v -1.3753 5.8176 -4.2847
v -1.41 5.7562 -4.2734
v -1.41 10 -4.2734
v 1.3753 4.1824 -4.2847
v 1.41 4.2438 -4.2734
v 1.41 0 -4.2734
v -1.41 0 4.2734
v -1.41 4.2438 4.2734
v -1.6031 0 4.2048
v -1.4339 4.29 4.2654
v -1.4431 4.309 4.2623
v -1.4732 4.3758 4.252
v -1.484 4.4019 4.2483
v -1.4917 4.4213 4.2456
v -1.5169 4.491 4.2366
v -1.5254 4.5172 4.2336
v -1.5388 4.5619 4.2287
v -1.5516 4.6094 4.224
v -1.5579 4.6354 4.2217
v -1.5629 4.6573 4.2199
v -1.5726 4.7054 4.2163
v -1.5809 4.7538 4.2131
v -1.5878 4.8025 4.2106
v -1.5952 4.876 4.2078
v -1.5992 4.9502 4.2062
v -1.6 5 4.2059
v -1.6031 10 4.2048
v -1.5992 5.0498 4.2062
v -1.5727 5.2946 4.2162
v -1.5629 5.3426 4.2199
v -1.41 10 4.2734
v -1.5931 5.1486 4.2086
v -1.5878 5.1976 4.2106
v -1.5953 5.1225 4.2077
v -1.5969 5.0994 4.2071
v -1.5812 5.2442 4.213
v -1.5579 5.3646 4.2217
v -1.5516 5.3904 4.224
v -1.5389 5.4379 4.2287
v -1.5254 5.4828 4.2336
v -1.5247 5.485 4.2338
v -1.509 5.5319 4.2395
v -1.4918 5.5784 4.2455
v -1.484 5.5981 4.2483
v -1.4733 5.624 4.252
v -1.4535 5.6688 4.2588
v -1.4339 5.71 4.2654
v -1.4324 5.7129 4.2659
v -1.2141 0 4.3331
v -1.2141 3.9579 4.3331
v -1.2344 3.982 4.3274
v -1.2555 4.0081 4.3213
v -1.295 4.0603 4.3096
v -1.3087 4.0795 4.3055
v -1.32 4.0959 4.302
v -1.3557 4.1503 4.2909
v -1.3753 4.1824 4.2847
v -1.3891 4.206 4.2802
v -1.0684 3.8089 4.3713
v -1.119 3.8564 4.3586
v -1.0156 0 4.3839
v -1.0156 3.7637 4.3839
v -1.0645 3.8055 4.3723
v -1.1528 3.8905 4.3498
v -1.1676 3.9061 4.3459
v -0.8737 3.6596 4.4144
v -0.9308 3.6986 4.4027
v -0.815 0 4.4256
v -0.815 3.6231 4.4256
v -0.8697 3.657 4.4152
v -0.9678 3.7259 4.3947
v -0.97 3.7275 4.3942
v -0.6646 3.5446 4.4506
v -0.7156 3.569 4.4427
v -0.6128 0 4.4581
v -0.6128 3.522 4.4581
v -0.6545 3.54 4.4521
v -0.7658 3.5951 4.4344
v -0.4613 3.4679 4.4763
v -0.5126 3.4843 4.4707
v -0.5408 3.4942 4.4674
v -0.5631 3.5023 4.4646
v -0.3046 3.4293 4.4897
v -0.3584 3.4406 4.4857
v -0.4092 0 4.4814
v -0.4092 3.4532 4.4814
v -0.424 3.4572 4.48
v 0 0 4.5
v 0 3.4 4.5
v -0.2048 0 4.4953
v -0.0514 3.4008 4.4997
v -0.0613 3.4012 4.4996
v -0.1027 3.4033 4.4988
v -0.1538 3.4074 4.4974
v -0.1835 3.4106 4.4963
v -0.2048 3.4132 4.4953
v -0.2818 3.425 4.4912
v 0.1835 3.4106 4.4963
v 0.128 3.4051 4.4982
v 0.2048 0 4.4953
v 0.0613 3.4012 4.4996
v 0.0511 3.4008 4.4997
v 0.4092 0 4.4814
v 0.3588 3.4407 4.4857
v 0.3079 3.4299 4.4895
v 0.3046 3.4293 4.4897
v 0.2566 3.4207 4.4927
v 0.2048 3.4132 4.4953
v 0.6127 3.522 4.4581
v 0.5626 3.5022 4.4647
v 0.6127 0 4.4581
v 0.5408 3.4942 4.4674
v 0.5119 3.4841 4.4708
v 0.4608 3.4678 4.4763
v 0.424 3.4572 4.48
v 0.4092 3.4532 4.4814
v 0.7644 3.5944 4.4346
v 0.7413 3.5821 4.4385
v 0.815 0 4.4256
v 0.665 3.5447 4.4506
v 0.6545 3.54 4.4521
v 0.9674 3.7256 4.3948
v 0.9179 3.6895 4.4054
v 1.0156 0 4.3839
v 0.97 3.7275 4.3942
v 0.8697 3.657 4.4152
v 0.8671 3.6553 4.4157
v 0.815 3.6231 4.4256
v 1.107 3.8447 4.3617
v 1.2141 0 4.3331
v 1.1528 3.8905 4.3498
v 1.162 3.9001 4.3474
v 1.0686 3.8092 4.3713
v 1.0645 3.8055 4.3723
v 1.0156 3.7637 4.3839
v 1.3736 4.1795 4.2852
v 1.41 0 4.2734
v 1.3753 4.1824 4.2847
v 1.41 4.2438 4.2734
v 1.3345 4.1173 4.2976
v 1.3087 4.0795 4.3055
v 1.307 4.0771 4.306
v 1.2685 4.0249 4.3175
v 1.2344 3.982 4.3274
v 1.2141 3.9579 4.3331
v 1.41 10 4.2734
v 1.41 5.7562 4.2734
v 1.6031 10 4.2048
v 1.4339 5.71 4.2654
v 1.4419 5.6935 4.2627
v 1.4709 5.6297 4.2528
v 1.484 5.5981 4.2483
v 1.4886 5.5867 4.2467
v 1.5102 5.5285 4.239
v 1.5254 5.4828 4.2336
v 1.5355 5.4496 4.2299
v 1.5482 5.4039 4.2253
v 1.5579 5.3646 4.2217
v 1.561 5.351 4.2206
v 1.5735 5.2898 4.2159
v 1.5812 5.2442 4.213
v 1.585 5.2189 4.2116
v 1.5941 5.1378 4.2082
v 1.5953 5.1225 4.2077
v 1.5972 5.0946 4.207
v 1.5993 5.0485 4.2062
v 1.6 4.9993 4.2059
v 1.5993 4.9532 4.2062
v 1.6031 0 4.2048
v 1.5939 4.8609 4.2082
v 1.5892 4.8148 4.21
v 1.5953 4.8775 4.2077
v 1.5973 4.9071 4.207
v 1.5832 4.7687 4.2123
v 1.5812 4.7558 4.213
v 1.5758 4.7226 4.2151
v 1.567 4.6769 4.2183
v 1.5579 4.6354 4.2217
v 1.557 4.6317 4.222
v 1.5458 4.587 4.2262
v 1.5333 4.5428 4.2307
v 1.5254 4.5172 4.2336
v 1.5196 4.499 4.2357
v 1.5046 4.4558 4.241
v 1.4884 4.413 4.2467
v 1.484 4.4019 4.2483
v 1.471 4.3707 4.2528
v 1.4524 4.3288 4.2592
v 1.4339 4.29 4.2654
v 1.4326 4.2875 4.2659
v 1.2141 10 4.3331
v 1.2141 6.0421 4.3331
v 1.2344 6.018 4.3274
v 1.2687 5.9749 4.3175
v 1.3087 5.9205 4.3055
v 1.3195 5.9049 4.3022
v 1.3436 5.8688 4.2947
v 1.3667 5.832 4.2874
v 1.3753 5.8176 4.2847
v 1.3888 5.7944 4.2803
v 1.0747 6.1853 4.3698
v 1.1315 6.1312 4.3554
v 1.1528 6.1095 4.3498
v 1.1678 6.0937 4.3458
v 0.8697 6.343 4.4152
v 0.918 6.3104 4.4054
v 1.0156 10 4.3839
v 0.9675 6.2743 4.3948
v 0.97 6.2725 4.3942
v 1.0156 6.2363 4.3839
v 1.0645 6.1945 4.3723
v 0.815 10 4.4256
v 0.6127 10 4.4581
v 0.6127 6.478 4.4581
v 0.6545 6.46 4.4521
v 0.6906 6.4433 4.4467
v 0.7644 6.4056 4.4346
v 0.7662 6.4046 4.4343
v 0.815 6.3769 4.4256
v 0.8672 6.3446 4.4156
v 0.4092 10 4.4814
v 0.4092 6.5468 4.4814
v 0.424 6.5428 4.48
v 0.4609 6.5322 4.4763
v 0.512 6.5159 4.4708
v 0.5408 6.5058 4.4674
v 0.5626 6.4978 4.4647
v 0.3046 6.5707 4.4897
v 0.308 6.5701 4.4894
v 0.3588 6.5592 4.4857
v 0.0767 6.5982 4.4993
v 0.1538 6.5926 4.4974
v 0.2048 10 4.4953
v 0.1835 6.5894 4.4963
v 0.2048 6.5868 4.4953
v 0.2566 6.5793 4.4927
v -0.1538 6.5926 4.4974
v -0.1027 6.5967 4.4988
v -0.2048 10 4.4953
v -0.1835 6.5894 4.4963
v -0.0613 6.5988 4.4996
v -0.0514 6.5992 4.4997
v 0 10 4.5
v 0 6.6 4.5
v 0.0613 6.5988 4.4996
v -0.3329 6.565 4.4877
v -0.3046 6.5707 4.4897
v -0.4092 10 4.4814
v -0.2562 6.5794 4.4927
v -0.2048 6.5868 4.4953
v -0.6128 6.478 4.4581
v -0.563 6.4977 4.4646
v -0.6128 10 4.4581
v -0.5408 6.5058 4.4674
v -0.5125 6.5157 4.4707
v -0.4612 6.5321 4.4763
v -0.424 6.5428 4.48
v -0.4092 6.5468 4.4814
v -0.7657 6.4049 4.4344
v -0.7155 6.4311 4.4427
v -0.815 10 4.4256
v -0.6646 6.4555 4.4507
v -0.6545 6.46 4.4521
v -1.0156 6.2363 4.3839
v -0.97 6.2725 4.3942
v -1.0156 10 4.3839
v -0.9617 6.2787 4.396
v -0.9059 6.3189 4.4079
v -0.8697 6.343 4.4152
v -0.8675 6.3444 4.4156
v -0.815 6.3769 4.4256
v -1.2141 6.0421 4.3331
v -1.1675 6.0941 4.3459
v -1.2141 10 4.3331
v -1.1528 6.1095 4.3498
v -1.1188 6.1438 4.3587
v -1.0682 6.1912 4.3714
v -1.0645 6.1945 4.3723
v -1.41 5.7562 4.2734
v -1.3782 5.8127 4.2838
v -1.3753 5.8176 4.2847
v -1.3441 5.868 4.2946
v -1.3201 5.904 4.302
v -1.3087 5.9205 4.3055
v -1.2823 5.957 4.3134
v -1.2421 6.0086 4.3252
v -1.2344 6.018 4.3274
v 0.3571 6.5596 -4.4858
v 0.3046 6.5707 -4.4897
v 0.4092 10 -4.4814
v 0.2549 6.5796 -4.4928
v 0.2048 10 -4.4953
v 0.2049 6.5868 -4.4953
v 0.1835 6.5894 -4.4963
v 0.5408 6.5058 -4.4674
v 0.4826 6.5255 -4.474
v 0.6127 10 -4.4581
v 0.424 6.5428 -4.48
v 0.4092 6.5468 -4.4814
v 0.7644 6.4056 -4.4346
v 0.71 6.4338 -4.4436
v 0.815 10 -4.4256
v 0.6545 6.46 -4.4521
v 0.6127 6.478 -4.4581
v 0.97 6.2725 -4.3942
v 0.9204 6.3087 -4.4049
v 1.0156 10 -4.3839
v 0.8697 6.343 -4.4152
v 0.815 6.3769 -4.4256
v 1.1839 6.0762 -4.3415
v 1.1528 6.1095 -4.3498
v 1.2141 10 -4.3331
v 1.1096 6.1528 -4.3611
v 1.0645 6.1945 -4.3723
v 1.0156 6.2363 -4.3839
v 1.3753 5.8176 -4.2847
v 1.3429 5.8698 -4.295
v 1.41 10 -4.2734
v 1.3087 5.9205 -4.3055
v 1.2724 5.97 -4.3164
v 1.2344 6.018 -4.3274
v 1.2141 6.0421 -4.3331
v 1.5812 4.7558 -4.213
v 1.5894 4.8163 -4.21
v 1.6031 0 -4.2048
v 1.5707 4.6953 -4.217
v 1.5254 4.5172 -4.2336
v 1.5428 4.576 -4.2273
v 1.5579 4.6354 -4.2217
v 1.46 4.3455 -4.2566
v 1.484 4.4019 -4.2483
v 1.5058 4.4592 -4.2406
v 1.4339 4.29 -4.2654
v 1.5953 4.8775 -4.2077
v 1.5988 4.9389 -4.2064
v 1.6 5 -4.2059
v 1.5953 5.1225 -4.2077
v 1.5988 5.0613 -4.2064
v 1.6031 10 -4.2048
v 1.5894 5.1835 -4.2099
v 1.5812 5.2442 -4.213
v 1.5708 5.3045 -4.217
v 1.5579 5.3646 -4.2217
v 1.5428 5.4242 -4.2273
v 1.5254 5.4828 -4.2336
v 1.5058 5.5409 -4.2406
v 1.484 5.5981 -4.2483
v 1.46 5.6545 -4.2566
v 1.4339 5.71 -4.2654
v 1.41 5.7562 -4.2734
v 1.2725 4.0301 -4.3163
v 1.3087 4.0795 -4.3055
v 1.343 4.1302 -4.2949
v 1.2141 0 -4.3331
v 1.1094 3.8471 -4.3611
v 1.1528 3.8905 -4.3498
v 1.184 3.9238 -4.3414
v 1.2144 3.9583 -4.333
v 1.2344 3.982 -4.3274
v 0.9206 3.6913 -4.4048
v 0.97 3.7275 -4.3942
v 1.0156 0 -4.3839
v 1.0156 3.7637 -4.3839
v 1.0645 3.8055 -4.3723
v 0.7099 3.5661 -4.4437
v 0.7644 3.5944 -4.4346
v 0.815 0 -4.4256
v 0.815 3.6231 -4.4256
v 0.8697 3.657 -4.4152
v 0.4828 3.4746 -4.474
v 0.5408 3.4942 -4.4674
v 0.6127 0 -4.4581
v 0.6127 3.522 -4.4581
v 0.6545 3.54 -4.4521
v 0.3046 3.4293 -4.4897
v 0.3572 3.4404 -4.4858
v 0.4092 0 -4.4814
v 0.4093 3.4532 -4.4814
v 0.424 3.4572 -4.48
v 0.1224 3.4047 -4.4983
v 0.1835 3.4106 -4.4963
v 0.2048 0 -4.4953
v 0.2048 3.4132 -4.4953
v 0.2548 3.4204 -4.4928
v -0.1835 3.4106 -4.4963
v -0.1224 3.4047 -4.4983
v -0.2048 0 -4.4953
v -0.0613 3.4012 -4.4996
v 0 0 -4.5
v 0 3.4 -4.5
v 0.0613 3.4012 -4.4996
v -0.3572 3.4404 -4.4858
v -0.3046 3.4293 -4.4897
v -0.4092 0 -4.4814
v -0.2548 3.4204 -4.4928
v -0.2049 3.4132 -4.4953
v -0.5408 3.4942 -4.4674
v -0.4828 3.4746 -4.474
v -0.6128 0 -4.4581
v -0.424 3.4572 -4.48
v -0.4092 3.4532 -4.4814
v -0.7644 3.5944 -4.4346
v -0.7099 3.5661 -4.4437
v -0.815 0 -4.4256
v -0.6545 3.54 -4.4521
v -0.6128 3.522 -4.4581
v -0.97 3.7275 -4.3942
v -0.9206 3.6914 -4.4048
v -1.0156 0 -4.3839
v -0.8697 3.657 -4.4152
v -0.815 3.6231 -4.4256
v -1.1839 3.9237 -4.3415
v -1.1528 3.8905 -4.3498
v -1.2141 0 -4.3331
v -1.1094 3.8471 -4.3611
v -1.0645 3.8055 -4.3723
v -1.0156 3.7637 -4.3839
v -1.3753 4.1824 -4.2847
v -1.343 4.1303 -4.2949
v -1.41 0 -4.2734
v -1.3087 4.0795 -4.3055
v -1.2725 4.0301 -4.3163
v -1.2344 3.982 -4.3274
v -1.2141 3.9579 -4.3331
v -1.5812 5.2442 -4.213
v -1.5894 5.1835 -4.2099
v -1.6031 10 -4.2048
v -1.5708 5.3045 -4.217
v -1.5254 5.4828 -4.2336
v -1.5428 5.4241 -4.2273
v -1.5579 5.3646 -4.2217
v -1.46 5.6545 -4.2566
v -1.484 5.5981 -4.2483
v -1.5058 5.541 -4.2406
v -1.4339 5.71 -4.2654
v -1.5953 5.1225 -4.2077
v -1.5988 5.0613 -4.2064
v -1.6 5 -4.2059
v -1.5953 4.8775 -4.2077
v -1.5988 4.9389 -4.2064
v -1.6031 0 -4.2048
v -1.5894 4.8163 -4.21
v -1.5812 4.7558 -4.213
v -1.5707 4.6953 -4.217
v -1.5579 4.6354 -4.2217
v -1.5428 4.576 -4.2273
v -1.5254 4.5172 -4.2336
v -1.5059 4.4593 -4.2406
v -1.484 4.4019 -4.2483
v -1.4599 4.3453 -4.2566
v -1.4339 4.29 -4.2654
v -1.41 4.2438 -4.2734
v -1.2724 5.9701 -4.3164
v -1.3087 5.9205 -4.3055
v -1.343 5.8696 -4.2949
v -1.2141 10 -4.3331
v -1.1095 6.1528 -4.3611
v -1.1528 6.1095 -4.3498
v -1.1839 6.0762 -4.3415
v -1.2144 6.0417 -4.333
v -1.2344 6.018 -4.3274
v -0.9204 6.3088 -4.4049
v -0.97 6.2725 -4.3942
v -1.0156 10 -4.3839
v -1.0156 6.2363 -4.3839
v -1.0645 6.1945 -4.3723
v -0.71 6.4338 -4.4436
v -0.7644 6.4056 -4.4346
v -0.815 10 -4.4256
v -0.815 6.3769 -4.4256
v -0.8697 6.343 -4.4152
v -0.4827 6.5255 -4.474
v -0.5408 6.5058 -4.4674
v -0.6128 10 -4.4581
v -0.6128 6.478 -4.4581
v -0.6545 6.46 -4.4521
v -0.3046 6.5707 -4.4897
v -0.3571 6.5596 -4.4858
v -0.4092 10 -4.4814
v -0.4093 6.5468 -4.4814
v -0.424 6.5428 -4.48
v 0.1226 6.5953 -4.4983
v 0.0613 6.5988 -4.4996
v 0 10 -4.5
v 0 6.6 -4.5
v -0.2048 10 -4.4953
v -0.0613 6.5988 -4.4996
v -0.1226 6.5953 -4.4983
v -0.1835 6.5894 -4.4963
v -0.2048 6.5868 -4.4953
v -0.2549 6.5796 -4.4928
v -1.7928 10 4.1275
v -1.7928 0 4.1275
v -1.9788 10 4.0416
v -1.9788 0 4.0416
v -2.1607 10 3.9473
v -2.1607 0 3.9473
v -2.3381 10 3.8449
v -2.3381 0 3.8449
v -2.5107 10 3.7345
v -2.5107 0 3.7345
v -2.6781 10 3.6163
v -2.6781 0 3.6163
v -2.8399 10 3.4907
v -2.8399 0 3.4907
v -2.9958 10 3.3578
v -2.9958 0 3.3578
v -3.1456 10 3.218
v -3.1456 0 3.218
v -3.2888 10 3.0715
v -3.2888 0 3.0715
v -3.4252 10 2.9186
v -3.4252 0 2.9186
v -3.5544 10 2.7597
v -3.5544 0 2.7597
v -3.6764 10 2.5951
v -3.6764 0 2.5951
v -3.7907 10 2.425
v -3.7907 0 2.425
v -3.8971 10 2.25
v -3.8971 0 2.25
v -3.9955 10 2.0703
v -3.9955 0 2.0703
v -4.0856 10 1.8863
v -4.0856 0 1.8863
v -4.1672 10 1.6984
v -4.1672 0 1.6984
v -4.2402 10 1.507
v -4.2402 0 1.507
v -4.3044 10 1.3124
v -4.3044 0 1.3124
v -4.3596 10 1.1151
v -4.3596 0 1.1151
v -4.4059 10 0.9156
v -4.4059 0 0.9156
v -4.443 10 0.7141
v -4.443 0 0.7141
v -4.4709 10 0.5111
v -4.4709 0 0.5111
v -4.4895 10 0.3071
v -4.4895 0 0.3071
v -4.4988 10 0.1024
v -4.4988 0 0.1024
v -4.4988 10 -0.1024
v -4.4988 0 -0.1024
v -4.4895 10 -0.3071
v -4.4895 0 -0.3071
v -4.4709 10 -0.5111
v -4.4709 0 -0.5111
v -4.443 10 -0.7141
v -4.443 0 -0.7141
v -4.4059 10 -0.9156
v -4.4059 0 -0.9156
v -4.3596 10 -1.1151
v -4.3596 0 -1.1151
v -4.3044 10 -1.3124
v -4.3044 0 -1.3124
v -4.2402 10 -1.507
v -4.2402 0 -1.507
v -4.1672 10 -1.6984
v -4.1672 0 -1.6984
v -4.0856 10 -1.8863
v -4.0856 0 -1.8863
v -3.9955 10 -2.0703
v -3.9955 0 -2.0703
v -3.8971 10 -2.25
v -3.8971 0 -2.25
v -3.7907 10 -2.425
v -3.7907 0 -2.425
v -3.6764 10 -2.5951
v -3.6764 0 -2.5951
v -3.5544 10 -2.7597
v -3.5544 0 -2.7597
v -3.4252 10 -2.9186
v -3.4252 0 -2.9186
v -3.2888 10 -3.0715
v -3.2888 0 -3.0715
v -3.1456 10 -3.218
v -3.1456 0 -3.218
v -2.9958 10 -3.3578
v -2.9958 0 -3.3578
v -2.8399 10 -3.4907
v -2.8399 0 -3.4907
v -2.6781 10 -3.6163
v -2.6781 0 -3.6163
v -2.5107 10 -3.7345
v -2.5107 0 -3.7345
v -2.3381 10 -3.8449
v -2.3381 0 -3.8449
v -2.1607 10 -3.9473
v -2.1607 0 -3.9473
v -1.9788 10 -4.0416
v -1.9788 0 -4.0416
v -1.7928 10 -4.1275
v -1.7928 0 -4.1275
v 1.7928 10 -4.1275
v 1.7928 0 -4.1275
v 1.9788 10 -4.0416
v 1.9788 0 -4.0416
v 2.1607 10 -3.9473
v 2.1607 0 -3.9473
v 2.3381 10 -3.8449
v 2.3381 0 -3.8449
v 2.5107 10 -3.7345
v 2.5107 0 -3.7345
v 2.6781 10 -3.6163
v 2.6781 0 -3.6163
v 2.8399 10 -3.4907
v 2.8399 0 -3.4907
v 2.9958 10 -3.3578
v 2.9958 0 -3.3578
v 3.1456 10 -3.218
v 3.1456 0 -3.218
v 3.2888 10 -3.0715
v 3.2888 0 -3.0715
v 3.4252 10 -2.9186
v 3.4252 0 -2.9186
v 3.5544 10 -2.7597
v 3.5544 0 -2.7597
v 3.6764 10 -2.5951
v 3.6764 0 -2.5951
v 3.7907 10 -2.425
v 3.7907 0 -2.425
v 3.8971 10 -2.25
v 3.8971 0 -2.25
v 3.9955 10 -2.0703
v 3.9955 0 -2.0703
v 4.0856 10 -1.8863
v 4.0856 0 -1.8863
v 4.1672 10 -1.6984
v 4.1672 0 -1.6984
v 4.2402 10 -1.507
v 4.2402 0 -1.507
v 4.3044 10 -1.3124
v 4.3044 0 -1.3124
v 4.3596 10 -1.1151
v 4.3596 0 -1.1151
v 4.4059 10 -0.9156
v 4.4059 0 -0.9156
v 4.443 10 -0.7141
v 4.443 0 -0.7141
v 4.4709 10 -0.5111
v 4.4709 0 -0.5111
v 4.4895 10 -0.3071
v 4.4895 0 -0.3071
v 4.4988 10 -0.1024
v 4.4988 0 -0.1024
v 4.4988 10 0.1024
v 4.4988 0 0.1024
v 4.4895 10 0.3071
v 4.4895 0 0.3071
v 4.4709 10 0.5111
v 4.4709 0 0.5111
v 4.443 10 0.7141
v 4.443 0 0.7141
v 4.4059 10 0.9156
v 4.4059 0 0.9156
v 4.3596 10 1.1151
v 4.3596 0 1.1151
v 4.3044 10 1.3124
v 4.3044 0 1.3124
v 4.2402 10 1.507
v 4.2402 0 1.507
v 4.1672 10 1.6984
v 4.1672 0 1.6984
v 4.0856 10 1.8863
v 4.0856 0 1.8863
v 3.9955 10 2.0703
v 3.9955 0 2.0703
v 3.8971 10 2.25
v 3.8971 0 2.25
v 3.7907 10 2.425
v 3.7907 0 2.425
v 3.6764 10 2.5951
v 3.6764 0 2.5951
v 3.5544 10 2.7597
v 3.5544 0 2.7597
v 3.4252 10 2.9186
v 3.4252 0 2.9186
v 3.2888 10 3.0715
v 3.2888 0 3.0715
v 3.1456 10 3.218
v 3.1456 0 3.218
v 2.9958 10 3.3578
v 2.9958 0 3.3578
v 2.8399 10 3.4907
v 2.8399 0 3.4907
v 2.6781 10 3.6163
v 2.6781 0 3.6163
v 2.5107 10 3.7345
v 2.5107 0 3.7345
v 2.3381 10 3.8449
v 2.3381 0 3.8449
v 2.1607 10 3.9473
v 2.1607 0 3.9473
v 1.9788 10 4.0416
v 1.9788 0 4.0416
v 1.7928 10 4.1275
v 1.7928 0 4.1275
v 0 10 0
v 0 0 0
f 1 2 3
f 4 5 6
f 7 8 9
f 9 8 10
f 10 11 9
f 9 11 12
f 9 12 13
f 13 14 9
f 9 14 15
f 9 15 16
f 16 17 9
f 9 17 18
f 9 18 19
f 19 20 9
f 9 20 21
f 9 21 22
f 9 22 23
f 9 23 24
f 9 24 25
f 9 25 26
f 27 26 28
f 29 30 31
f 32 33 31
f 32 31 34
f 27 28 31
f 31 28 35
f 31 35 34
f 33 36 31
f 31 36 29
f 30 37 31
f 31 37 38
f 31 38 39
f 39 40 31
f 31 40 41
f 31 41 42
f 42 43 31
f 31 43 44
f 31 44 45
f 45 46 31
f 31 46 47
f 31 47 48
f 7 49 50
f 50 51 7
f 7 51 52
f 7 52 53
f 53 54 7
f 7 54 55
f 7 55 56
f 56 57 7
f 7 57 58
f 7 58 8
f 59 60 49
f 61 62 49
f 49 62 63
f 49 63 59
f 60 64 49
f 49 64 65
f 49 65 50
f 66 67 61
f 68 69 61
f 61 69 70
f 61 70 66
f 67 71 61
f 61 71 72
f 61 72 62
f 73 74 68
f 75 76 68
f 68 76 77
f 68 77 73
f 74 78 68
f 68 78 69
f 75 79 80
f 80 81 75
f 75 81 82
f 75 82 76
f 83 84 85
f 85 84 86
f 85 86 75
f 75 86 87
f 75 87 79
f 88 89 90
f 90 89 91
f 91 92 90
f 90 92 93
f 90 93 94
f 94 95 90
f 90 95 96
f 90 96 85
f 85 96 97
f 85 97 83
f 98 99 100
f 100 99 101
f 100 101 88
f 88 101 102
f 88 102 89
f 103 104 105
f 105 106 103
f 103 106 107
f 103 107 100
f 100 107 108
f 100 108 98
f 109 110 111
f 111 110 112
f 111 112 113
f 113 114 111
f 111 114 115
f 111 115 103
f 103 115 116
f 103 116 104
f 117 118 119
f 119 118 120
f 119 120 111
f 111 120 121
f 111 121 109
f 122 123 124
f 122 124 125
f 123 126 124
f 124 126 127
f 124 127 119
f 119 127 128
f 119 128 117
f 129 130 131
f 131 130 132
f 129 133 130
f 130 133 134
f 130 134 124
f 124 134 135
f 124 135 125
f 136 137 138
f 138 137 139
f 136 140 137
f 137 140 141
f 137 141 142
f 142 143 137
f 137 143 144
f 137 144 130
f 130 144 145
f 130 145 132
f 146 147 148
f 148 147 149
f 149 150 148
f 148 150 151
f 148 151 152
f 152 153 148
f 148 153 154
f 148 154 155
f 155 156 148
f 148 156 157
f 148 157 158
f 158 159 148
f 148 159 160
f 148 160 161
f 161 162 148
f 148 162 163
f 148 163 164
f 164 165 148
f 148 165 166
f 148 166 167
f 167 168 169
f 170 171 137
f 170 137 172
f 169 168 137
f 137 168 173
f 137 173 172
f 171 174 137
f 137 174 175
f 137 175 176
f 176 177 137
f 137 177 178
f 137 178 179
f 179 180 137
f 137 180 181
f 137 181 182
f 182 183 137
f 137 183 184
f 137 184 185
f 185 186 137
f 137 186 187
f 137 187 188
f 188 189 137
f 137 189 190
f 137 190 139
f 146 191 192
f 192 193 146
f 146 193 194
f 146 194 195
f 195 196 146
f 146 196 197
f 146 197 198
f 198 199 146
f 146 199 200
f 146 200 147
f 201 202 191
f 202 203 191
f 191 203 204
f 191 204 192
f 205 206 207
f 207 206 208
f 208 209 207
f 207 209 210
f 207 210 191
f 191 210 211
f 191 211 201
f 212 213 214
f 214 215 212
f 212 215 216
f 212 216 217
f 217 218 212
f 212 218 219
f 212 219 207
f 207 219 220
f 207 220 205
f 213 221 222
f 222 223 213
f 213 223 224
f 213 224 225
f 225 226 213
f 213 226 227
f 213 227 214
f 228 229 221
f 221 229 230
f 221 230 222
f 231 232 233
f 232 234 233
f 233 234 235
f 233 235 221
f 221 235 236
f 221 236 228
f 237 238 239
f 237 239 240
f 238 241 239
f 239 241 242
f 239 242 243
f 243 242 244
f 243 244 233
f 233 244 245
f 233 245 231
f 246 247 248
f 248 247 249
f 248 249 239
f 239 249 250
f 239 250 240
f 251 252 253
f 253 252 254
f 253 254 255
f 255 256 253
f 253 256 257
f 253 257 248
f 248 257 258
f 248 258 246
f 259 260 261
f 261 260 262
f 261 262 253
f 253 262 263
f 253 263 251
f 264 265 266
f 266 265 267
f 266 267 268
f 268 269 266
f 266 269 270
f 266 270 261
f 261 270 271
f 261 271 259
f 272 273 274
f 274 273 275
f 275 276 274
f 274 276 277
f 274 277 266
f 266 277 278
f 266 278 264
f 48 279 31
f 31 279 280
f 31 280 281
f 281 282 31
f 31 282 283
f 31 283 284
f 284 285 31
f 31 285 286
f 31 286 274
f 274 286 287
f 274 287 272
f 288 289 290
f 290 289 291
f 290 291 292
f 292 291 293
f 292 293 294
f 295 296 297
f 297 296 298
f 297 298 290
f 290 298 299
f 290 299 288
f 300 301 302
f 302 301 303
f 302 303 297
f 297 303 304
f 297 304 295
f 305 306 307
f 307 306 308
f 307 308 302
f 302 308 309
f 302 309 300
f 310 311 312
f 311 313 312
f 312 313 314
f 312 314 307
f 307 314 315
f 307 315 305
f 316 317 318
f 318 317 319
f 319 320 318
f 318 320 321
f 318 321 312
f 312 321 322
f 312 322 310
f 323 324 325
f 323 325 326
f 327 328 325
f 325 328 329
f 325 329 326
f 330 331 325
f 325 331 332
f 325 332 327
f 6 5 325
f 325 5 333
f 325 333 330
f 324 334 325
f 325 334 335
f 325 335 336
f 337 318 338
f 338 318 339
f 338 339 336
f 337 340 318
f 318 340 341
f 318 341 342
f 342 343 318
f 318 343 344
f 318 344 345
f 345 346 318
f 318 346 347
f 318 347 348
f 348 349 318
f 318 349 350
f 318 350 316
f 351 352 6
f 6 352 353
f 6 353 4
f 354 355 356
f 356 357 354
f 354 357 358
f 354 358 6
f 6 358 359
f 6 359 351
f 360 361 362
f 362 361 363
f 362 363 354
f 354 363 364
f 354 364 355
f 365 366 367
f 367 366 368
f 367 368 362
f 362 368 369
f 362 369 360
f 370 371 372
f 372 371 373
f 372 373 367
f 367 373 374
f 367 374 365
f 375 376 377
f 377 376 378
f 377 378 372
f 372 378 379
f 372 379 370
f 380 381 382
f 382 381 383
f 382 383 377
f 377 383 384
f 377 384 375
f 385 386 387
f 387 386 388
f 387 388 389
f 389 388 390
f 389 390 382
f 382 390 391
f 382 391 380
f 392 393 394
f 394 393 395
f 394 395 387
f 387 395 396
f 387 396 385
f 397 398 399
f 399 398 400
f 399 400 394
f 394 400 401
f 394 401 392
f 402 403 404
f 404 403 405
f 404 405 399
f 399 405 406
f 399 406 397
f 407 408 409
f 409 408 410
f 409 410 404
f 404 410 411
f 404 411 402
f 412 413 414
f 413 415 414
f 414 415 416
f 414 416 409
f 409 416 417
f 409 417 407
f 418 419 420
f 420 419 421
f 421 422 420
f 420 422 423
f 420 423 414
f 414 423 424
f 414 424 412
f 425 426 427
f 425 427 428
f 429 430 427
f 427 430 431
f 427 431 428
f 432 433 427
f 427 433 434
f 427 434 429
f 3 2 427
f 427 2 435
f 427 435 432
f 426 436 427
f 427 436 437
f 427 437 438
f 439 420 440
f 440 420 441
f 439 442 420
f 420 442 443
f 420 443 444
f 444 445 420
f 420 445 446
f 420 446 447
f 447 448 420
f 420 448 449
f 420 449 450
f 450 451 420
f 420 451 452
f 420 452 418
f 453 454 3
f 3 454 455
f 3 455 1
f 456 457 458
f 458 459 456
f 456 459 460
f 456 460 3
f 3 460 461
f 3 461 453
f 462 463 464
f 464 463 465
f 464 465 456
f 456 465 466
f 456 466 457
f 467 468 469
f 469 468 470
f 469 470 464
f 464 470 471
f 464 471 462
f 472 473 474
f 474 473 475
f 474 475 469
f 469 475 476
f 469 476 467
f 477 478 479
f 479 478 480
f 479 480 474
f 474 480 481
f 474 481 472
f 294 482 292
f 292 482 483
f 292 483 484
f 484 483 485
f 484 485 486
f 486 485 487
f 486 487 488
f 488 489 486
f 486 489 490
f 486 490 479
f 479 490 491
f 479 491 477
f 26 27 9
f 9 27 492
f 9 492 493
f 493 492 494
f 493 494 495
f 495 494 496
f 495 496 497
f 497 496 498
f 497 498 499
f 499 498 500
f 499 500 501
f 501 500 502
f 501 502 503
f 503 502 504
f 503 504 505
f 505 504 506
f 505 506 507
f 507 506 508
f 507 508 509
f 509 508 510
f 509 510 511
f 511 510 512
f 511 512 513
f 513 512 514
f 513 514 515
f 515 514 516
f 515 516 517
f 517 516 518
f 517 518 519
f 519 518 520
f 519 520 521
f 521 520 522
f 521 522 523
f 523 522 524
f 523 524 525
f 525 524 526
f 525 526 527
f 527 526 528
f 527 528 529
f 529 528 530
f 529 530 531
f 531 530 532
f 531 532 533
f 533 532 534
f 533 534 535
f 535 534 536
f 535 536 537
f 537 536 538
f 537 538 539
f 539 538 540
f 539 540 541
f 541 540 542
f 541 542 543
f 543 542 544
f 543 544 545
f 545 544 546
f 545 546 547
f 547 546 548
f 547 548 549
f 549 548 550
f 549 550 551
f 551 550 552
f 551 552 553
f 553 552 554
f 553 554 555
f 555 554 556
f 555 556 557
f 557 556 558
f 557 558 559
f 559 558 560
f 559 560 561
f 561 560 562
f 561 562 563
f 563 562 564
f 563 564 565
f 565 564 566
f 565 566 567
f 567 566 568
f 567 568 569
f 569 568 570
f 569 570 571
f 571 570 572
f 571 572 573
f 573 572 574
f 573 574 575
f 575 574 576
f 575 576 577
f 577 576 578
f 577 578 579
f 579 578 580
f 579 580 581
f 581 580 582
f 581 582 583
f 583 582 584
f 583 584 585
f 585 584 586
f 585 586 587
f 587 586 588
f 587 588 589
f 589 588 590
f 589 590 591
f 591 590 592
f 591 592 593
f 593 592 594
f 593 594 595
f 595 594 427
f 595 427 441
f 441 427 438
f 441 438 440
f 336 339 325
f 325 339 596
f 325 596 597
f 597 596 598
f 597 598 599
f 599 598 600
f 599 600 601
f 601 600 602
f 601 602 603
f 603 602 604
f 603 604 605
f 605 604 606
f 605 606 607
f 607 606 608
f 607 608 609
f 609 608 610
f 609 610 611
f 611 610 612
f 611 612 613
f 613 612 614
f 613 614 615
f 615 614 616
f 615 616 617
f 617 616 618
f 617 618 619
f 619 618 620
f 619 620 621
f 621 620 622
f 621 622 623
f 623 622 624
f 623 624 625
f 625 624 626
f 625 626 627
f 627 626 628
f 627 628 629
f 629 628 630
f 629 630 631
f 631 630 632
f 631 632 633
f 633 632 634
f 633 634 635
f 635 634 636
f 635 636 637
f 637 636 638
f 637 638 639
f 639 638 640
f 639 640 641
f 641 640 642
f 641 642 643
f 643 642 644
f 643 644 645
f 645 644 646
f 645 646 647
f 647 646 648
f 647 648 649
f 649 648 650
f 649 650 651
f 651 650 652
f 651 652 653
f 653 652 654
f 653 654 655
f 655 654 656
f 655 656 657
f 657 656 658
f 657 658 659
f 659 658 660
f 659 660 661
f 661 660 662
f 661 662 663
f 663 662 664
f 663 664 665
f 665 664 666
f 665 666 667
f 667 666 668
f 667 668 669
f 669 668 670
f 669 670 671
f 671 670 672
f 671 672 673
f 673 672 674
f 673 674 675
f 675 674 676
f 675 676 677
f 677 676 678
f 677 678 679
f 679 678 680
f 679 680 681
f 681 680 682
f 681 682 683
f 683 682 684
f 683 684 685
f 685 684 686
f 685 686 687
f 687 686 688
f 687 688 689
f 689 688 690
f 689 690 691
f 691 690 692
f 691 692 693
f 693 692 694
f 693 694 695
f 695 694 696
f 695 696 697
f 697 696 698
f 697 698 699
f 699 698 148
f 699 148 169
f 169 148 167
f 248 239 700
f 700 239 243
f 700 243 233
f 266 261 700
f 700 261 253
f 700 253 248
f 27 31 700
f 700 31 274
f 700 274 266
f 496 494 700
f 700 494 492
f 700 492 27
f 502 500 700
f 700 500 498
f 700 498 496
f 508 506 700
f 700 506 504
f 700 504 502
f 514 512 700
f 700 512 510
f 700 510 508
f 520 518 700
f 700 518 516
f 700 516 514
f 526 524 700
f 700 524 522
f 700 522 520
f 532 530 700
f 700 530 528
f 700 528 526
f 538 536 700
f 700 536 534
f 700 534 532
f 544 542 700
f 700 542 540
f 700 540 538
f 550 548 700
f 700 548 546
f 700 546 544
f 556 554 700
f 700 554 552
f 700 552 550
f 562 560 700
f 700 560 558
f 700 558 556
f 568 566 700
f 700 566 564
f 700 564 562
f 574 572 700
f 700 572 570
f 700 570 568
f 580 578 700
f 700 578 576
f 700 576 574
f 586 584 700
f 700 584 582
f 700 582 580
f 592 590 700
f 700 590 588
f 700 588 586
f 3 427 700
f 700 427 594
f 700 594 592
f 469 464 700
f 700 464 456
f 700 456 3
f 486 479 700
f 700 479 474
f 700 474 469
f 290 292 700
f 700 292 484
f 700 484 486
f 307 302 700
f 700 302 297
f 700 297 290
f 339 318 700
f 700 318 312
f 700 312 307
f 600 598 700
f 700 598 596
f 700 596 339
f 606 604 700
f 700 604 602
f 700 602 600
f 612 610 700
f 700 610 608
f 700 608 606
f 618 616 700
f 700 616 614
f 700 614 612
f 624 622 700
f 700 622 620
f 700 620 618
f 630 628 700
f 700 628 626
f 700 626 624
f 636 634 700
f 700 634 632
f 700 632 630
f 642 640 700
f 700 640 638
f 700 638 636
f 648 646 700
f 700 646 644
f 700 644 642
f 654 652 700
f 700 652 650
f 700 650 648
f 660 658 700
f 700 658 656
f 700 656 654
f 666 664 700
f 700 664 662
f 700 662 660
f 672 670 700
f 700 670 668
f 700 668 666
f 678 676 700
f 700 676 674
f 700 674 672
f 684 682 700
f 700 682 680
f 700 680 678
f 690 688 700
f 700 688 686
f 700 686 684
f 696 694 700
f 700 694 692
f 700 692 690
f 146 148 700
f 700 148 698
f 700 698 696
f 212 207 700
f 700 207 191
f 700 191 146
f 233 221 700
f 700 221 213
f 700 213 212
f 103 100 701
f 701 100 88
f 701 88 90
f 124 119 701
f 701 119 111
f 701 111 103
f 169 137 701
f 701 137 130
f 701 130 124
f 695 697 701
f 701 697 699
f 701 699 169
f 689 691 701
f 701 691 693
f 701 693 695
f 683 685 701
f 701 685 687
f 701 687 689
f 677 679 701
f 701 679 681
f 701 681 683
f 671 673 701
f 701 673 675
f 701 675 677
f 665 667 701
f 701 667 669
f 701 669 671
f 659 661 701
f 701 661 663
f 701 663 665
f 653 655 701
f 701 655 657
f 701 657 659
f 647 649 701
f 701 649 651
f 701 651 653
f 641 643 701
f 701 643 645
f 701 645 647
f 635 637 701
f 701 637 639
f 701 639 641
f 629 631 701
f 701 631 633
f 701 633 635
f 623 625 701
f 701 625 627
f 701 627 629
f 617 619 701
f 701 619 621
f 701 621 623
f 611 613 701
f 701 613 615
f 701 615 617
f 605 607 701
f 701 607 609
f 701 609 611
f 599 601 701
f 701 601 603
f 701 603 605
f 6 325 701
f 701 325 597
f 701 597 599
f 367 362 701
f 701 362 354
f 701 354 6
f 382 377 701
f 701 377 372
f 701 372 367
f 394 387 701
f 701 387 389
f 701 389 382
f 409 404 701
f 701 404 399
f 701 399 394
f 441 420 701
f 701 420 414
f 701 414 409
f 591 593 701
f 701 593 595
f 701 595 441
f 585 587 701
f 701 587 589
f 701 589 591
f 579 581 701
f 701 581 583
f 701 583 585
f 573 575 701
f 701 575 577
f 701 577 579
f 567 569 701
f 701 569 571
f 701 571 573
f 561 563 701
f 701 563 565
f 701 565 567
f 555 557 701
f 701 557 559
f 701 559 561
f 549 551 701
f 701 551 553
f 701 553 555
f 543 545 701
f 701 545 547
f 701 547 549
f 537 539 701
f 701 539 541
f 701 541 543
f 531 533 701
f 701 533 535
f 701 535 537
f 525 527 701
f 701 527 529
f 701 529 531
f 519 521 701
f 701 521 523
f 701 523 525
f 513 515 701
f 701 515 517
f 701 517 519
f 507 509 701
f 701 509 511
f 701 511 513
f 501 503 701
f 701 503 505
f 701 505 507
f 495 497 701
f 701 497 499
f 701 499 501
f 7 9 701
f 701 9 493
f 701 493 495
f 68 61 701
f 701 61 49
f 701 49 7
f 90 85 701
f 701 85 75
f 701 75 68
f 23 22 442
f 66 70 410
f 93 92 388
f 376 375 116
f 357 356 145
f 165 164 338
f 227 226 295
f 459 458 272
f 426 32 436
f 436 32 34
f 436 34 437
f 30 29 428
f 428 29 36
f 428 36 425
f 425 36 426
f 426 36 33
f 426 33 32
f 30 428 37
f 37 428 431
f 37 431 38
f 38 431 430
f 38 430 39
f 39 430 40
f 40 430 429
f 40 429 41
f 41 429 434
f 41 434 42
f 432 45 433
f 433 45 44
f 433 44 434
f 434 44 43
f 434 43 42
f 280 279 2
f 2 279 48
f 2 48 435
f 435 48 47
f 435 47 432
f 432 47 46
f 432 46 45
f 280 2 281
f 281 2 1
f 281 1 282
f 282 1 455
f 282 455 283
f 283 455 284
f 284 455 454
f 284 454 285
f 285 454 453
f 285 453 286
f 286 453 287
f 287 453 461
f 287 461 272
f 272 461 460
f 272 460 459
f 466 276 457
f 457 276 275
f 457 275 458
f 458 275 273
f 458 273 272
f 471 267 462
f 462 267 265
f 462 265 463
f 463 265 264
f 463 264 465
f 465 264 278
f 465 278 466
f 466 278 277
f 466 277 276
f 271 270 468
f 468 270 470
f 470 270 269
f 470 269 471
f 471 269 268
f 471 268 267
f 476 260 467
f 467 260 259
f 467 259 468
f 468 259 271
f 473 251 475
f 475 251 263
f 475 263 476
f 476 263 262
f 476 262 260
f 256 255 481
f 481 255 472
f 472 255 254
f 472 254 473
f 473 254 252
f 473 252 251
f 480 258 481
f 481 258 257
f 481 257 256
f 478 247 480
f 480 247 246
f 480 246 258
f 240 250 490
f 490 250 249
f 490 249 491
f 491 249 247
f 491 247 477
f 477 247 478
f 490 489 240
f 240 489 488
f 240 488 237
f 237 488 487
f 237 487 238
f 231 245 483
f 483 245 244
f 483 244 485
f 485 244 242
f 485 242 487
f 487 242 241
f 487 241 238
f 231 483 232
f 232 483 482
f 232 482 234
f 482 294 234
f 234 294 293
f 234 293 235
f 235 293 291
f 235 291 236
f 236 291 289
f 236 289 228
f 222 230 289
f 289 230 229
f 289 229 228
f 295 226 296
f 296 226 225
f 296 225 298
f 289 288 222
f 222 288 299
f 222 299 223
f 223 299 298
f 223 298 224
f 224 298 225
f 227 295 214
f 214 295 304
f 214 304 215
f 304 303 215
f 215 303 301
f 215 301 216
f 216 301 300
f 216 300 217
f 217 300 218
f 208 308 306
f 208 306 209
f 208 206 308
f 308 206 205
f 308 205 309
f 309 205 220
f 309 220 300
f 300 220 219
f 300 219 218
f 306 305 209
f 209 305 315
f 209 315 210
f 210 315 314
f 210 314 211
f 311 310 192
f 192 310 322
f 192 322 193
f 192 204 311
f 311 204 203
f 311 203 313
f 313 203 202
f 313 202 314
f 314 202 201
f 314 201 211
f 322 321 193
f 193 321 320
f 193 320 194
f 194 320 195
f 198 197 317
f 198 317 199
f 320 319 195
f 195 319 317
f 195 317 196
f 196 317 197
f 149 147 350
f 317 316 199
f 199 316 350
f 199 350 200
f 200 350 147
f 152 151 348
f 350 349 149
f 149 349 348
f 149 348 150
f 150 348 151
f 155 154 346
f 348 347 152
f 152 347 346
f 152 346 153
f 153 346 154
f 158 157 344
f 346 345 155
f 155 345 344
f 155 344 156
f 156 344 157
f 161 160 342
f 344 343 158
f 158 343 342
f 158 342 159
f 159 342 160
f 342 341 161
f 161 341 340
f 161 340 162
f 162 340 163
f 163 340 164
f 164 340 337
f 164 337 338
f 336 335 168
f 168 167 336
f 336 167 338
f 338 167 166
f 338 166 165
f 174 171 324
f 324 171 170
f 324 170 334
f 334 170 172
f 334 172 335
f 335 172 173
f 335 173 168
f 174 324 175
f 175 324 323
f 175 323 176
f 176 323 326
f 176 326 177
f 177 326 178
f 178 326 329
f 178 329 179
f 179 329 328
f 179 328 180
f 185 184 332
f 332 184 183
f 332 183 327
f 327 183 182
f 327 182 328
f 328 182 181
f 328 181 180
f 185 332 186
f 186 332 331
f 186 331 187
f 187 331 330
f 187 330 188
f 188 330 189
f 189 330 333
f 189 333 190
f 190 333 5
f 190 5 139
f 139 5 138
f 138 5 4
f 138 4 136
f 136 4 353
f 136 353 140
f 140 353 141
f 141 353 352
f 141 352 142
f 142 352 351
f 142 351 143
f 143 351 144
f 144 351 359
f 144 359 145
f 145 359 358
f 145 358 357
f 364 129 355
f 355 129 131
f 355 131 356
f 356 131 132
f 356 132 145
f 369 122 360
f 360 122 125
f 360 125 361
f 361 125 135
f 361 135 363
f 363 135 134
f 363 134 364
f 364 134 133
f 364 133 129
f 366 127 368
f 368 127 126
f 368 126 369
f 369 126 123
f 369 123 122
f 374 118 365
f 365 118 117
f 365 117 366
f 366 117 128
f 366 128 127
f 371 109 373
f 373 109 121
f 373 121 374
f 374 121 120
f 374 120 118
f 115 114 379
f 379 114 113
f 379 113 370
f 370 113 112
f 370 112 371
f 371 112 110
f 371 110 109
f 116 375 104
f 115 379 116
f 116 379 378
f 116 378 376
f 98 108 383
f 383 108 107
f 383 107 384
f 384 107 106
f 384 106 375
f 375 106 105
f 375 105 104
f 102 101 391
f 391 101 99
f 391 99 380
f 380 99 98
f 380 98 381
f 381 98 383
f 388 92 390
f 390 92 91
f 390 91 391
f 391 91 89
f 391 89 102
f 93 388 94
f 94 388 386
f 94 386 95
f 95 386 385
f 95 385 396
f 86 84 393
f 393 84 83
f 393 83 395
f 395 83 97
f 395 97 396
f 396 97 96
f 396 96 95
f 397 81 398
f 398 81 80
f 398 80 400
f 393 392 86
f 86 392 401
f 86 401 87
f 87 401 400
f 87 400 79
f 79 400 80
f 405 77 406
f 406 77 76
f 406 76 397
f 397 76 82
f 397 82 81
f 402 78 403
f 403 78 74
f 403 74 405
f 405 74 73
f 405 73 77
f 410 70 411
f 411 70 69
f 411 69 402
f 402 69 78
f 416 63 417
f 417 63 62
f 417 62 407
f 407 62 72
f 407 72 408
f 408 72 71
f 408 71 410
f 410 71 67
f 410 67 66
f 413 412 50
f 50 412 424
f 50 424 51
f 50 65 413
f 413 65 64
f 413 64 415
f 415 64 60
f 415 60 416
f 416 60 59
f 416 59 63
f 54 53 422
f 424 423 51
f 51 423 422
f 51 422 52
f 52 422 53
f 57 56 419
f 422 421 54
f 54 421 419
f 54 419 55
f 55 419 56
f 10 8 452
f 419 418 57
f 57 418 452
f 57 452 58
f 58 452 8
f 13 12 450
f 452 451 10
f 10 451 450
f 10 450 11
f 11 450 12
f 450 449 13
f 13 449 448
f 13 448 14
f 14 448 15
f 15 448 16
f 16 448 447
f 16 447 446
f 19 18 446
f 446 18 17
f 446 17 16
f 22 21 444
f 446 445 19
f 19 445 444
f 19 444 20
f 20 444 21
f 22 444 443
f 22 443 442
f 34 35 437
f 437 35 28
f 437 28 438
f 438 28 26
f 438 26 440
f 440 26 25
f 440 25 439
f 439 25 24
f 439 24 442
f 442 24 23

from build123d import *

# Parameters (mm, degrees)
SKETCH3_R           = 4.5
BOSS_EXTRUDE1_DEPTH = 10
SKETCH4_R           = 1.6
CUT_EXTRUDE1_DEPTH  = 10
CUT_EXTRUDE2_START  = 49
SKETCH9_R           = 1.6
CUT_EXTRUDE2_DEPTH  = 49


with BuildPart() as part:
    # Sketch3 → Boss-Extrude1 (new body)
    with BuildSketch(Plane(origin=(0, 0, 0), x_dir=(1, 0, 0), z_dir=(0, 1, 0))):
        with Locations(Location((0, 0, 0), (0, 0, 270))):
            Circle(SKETCH3_R)
    extrude(amount=BOSS_EXTRUDE1_DEPTH)

    # Sketch4 → Cut-Extrude1 (cut)
    with BuildSketch(Plane.XY):
        with Locations((0, 5)):
            Circle(SKETCH4_R)
    extrude(amount=-CUT_EXTRUDE1_DEPTH, mode=Mode.SUBTRACT)

    # Sketch9 → Cut-Extrude2 (cut)
    with BuildSketch(Plane.XY.offset(CUT_EXTRUDE2_START)):
        with Locations(Location((0, 5, 0), (0, 0, 90))):
            Circle(SKETCH9_R)
    extrude(amount=-CUT_EXTRUDE2_DEPTH, mode=Mode.SUBTRACT)


solid = part.part
